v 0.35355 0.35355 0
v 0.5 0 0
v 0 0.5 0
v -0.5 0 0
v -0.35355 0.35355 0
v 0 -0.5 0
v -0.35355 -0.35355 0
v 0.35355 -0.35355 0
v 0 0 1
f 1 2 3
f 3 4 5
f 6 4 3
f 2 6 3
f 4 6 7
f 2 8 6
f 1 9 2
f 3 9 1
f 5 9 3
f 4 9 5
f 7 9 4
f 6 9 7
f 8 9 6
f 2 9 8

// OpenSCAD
// Octagon Pyramid for Stacks of Shapes
// by Slashee the Cow

linear_extrude(1, scale = 0)
circle(d=1, $fn=8);
